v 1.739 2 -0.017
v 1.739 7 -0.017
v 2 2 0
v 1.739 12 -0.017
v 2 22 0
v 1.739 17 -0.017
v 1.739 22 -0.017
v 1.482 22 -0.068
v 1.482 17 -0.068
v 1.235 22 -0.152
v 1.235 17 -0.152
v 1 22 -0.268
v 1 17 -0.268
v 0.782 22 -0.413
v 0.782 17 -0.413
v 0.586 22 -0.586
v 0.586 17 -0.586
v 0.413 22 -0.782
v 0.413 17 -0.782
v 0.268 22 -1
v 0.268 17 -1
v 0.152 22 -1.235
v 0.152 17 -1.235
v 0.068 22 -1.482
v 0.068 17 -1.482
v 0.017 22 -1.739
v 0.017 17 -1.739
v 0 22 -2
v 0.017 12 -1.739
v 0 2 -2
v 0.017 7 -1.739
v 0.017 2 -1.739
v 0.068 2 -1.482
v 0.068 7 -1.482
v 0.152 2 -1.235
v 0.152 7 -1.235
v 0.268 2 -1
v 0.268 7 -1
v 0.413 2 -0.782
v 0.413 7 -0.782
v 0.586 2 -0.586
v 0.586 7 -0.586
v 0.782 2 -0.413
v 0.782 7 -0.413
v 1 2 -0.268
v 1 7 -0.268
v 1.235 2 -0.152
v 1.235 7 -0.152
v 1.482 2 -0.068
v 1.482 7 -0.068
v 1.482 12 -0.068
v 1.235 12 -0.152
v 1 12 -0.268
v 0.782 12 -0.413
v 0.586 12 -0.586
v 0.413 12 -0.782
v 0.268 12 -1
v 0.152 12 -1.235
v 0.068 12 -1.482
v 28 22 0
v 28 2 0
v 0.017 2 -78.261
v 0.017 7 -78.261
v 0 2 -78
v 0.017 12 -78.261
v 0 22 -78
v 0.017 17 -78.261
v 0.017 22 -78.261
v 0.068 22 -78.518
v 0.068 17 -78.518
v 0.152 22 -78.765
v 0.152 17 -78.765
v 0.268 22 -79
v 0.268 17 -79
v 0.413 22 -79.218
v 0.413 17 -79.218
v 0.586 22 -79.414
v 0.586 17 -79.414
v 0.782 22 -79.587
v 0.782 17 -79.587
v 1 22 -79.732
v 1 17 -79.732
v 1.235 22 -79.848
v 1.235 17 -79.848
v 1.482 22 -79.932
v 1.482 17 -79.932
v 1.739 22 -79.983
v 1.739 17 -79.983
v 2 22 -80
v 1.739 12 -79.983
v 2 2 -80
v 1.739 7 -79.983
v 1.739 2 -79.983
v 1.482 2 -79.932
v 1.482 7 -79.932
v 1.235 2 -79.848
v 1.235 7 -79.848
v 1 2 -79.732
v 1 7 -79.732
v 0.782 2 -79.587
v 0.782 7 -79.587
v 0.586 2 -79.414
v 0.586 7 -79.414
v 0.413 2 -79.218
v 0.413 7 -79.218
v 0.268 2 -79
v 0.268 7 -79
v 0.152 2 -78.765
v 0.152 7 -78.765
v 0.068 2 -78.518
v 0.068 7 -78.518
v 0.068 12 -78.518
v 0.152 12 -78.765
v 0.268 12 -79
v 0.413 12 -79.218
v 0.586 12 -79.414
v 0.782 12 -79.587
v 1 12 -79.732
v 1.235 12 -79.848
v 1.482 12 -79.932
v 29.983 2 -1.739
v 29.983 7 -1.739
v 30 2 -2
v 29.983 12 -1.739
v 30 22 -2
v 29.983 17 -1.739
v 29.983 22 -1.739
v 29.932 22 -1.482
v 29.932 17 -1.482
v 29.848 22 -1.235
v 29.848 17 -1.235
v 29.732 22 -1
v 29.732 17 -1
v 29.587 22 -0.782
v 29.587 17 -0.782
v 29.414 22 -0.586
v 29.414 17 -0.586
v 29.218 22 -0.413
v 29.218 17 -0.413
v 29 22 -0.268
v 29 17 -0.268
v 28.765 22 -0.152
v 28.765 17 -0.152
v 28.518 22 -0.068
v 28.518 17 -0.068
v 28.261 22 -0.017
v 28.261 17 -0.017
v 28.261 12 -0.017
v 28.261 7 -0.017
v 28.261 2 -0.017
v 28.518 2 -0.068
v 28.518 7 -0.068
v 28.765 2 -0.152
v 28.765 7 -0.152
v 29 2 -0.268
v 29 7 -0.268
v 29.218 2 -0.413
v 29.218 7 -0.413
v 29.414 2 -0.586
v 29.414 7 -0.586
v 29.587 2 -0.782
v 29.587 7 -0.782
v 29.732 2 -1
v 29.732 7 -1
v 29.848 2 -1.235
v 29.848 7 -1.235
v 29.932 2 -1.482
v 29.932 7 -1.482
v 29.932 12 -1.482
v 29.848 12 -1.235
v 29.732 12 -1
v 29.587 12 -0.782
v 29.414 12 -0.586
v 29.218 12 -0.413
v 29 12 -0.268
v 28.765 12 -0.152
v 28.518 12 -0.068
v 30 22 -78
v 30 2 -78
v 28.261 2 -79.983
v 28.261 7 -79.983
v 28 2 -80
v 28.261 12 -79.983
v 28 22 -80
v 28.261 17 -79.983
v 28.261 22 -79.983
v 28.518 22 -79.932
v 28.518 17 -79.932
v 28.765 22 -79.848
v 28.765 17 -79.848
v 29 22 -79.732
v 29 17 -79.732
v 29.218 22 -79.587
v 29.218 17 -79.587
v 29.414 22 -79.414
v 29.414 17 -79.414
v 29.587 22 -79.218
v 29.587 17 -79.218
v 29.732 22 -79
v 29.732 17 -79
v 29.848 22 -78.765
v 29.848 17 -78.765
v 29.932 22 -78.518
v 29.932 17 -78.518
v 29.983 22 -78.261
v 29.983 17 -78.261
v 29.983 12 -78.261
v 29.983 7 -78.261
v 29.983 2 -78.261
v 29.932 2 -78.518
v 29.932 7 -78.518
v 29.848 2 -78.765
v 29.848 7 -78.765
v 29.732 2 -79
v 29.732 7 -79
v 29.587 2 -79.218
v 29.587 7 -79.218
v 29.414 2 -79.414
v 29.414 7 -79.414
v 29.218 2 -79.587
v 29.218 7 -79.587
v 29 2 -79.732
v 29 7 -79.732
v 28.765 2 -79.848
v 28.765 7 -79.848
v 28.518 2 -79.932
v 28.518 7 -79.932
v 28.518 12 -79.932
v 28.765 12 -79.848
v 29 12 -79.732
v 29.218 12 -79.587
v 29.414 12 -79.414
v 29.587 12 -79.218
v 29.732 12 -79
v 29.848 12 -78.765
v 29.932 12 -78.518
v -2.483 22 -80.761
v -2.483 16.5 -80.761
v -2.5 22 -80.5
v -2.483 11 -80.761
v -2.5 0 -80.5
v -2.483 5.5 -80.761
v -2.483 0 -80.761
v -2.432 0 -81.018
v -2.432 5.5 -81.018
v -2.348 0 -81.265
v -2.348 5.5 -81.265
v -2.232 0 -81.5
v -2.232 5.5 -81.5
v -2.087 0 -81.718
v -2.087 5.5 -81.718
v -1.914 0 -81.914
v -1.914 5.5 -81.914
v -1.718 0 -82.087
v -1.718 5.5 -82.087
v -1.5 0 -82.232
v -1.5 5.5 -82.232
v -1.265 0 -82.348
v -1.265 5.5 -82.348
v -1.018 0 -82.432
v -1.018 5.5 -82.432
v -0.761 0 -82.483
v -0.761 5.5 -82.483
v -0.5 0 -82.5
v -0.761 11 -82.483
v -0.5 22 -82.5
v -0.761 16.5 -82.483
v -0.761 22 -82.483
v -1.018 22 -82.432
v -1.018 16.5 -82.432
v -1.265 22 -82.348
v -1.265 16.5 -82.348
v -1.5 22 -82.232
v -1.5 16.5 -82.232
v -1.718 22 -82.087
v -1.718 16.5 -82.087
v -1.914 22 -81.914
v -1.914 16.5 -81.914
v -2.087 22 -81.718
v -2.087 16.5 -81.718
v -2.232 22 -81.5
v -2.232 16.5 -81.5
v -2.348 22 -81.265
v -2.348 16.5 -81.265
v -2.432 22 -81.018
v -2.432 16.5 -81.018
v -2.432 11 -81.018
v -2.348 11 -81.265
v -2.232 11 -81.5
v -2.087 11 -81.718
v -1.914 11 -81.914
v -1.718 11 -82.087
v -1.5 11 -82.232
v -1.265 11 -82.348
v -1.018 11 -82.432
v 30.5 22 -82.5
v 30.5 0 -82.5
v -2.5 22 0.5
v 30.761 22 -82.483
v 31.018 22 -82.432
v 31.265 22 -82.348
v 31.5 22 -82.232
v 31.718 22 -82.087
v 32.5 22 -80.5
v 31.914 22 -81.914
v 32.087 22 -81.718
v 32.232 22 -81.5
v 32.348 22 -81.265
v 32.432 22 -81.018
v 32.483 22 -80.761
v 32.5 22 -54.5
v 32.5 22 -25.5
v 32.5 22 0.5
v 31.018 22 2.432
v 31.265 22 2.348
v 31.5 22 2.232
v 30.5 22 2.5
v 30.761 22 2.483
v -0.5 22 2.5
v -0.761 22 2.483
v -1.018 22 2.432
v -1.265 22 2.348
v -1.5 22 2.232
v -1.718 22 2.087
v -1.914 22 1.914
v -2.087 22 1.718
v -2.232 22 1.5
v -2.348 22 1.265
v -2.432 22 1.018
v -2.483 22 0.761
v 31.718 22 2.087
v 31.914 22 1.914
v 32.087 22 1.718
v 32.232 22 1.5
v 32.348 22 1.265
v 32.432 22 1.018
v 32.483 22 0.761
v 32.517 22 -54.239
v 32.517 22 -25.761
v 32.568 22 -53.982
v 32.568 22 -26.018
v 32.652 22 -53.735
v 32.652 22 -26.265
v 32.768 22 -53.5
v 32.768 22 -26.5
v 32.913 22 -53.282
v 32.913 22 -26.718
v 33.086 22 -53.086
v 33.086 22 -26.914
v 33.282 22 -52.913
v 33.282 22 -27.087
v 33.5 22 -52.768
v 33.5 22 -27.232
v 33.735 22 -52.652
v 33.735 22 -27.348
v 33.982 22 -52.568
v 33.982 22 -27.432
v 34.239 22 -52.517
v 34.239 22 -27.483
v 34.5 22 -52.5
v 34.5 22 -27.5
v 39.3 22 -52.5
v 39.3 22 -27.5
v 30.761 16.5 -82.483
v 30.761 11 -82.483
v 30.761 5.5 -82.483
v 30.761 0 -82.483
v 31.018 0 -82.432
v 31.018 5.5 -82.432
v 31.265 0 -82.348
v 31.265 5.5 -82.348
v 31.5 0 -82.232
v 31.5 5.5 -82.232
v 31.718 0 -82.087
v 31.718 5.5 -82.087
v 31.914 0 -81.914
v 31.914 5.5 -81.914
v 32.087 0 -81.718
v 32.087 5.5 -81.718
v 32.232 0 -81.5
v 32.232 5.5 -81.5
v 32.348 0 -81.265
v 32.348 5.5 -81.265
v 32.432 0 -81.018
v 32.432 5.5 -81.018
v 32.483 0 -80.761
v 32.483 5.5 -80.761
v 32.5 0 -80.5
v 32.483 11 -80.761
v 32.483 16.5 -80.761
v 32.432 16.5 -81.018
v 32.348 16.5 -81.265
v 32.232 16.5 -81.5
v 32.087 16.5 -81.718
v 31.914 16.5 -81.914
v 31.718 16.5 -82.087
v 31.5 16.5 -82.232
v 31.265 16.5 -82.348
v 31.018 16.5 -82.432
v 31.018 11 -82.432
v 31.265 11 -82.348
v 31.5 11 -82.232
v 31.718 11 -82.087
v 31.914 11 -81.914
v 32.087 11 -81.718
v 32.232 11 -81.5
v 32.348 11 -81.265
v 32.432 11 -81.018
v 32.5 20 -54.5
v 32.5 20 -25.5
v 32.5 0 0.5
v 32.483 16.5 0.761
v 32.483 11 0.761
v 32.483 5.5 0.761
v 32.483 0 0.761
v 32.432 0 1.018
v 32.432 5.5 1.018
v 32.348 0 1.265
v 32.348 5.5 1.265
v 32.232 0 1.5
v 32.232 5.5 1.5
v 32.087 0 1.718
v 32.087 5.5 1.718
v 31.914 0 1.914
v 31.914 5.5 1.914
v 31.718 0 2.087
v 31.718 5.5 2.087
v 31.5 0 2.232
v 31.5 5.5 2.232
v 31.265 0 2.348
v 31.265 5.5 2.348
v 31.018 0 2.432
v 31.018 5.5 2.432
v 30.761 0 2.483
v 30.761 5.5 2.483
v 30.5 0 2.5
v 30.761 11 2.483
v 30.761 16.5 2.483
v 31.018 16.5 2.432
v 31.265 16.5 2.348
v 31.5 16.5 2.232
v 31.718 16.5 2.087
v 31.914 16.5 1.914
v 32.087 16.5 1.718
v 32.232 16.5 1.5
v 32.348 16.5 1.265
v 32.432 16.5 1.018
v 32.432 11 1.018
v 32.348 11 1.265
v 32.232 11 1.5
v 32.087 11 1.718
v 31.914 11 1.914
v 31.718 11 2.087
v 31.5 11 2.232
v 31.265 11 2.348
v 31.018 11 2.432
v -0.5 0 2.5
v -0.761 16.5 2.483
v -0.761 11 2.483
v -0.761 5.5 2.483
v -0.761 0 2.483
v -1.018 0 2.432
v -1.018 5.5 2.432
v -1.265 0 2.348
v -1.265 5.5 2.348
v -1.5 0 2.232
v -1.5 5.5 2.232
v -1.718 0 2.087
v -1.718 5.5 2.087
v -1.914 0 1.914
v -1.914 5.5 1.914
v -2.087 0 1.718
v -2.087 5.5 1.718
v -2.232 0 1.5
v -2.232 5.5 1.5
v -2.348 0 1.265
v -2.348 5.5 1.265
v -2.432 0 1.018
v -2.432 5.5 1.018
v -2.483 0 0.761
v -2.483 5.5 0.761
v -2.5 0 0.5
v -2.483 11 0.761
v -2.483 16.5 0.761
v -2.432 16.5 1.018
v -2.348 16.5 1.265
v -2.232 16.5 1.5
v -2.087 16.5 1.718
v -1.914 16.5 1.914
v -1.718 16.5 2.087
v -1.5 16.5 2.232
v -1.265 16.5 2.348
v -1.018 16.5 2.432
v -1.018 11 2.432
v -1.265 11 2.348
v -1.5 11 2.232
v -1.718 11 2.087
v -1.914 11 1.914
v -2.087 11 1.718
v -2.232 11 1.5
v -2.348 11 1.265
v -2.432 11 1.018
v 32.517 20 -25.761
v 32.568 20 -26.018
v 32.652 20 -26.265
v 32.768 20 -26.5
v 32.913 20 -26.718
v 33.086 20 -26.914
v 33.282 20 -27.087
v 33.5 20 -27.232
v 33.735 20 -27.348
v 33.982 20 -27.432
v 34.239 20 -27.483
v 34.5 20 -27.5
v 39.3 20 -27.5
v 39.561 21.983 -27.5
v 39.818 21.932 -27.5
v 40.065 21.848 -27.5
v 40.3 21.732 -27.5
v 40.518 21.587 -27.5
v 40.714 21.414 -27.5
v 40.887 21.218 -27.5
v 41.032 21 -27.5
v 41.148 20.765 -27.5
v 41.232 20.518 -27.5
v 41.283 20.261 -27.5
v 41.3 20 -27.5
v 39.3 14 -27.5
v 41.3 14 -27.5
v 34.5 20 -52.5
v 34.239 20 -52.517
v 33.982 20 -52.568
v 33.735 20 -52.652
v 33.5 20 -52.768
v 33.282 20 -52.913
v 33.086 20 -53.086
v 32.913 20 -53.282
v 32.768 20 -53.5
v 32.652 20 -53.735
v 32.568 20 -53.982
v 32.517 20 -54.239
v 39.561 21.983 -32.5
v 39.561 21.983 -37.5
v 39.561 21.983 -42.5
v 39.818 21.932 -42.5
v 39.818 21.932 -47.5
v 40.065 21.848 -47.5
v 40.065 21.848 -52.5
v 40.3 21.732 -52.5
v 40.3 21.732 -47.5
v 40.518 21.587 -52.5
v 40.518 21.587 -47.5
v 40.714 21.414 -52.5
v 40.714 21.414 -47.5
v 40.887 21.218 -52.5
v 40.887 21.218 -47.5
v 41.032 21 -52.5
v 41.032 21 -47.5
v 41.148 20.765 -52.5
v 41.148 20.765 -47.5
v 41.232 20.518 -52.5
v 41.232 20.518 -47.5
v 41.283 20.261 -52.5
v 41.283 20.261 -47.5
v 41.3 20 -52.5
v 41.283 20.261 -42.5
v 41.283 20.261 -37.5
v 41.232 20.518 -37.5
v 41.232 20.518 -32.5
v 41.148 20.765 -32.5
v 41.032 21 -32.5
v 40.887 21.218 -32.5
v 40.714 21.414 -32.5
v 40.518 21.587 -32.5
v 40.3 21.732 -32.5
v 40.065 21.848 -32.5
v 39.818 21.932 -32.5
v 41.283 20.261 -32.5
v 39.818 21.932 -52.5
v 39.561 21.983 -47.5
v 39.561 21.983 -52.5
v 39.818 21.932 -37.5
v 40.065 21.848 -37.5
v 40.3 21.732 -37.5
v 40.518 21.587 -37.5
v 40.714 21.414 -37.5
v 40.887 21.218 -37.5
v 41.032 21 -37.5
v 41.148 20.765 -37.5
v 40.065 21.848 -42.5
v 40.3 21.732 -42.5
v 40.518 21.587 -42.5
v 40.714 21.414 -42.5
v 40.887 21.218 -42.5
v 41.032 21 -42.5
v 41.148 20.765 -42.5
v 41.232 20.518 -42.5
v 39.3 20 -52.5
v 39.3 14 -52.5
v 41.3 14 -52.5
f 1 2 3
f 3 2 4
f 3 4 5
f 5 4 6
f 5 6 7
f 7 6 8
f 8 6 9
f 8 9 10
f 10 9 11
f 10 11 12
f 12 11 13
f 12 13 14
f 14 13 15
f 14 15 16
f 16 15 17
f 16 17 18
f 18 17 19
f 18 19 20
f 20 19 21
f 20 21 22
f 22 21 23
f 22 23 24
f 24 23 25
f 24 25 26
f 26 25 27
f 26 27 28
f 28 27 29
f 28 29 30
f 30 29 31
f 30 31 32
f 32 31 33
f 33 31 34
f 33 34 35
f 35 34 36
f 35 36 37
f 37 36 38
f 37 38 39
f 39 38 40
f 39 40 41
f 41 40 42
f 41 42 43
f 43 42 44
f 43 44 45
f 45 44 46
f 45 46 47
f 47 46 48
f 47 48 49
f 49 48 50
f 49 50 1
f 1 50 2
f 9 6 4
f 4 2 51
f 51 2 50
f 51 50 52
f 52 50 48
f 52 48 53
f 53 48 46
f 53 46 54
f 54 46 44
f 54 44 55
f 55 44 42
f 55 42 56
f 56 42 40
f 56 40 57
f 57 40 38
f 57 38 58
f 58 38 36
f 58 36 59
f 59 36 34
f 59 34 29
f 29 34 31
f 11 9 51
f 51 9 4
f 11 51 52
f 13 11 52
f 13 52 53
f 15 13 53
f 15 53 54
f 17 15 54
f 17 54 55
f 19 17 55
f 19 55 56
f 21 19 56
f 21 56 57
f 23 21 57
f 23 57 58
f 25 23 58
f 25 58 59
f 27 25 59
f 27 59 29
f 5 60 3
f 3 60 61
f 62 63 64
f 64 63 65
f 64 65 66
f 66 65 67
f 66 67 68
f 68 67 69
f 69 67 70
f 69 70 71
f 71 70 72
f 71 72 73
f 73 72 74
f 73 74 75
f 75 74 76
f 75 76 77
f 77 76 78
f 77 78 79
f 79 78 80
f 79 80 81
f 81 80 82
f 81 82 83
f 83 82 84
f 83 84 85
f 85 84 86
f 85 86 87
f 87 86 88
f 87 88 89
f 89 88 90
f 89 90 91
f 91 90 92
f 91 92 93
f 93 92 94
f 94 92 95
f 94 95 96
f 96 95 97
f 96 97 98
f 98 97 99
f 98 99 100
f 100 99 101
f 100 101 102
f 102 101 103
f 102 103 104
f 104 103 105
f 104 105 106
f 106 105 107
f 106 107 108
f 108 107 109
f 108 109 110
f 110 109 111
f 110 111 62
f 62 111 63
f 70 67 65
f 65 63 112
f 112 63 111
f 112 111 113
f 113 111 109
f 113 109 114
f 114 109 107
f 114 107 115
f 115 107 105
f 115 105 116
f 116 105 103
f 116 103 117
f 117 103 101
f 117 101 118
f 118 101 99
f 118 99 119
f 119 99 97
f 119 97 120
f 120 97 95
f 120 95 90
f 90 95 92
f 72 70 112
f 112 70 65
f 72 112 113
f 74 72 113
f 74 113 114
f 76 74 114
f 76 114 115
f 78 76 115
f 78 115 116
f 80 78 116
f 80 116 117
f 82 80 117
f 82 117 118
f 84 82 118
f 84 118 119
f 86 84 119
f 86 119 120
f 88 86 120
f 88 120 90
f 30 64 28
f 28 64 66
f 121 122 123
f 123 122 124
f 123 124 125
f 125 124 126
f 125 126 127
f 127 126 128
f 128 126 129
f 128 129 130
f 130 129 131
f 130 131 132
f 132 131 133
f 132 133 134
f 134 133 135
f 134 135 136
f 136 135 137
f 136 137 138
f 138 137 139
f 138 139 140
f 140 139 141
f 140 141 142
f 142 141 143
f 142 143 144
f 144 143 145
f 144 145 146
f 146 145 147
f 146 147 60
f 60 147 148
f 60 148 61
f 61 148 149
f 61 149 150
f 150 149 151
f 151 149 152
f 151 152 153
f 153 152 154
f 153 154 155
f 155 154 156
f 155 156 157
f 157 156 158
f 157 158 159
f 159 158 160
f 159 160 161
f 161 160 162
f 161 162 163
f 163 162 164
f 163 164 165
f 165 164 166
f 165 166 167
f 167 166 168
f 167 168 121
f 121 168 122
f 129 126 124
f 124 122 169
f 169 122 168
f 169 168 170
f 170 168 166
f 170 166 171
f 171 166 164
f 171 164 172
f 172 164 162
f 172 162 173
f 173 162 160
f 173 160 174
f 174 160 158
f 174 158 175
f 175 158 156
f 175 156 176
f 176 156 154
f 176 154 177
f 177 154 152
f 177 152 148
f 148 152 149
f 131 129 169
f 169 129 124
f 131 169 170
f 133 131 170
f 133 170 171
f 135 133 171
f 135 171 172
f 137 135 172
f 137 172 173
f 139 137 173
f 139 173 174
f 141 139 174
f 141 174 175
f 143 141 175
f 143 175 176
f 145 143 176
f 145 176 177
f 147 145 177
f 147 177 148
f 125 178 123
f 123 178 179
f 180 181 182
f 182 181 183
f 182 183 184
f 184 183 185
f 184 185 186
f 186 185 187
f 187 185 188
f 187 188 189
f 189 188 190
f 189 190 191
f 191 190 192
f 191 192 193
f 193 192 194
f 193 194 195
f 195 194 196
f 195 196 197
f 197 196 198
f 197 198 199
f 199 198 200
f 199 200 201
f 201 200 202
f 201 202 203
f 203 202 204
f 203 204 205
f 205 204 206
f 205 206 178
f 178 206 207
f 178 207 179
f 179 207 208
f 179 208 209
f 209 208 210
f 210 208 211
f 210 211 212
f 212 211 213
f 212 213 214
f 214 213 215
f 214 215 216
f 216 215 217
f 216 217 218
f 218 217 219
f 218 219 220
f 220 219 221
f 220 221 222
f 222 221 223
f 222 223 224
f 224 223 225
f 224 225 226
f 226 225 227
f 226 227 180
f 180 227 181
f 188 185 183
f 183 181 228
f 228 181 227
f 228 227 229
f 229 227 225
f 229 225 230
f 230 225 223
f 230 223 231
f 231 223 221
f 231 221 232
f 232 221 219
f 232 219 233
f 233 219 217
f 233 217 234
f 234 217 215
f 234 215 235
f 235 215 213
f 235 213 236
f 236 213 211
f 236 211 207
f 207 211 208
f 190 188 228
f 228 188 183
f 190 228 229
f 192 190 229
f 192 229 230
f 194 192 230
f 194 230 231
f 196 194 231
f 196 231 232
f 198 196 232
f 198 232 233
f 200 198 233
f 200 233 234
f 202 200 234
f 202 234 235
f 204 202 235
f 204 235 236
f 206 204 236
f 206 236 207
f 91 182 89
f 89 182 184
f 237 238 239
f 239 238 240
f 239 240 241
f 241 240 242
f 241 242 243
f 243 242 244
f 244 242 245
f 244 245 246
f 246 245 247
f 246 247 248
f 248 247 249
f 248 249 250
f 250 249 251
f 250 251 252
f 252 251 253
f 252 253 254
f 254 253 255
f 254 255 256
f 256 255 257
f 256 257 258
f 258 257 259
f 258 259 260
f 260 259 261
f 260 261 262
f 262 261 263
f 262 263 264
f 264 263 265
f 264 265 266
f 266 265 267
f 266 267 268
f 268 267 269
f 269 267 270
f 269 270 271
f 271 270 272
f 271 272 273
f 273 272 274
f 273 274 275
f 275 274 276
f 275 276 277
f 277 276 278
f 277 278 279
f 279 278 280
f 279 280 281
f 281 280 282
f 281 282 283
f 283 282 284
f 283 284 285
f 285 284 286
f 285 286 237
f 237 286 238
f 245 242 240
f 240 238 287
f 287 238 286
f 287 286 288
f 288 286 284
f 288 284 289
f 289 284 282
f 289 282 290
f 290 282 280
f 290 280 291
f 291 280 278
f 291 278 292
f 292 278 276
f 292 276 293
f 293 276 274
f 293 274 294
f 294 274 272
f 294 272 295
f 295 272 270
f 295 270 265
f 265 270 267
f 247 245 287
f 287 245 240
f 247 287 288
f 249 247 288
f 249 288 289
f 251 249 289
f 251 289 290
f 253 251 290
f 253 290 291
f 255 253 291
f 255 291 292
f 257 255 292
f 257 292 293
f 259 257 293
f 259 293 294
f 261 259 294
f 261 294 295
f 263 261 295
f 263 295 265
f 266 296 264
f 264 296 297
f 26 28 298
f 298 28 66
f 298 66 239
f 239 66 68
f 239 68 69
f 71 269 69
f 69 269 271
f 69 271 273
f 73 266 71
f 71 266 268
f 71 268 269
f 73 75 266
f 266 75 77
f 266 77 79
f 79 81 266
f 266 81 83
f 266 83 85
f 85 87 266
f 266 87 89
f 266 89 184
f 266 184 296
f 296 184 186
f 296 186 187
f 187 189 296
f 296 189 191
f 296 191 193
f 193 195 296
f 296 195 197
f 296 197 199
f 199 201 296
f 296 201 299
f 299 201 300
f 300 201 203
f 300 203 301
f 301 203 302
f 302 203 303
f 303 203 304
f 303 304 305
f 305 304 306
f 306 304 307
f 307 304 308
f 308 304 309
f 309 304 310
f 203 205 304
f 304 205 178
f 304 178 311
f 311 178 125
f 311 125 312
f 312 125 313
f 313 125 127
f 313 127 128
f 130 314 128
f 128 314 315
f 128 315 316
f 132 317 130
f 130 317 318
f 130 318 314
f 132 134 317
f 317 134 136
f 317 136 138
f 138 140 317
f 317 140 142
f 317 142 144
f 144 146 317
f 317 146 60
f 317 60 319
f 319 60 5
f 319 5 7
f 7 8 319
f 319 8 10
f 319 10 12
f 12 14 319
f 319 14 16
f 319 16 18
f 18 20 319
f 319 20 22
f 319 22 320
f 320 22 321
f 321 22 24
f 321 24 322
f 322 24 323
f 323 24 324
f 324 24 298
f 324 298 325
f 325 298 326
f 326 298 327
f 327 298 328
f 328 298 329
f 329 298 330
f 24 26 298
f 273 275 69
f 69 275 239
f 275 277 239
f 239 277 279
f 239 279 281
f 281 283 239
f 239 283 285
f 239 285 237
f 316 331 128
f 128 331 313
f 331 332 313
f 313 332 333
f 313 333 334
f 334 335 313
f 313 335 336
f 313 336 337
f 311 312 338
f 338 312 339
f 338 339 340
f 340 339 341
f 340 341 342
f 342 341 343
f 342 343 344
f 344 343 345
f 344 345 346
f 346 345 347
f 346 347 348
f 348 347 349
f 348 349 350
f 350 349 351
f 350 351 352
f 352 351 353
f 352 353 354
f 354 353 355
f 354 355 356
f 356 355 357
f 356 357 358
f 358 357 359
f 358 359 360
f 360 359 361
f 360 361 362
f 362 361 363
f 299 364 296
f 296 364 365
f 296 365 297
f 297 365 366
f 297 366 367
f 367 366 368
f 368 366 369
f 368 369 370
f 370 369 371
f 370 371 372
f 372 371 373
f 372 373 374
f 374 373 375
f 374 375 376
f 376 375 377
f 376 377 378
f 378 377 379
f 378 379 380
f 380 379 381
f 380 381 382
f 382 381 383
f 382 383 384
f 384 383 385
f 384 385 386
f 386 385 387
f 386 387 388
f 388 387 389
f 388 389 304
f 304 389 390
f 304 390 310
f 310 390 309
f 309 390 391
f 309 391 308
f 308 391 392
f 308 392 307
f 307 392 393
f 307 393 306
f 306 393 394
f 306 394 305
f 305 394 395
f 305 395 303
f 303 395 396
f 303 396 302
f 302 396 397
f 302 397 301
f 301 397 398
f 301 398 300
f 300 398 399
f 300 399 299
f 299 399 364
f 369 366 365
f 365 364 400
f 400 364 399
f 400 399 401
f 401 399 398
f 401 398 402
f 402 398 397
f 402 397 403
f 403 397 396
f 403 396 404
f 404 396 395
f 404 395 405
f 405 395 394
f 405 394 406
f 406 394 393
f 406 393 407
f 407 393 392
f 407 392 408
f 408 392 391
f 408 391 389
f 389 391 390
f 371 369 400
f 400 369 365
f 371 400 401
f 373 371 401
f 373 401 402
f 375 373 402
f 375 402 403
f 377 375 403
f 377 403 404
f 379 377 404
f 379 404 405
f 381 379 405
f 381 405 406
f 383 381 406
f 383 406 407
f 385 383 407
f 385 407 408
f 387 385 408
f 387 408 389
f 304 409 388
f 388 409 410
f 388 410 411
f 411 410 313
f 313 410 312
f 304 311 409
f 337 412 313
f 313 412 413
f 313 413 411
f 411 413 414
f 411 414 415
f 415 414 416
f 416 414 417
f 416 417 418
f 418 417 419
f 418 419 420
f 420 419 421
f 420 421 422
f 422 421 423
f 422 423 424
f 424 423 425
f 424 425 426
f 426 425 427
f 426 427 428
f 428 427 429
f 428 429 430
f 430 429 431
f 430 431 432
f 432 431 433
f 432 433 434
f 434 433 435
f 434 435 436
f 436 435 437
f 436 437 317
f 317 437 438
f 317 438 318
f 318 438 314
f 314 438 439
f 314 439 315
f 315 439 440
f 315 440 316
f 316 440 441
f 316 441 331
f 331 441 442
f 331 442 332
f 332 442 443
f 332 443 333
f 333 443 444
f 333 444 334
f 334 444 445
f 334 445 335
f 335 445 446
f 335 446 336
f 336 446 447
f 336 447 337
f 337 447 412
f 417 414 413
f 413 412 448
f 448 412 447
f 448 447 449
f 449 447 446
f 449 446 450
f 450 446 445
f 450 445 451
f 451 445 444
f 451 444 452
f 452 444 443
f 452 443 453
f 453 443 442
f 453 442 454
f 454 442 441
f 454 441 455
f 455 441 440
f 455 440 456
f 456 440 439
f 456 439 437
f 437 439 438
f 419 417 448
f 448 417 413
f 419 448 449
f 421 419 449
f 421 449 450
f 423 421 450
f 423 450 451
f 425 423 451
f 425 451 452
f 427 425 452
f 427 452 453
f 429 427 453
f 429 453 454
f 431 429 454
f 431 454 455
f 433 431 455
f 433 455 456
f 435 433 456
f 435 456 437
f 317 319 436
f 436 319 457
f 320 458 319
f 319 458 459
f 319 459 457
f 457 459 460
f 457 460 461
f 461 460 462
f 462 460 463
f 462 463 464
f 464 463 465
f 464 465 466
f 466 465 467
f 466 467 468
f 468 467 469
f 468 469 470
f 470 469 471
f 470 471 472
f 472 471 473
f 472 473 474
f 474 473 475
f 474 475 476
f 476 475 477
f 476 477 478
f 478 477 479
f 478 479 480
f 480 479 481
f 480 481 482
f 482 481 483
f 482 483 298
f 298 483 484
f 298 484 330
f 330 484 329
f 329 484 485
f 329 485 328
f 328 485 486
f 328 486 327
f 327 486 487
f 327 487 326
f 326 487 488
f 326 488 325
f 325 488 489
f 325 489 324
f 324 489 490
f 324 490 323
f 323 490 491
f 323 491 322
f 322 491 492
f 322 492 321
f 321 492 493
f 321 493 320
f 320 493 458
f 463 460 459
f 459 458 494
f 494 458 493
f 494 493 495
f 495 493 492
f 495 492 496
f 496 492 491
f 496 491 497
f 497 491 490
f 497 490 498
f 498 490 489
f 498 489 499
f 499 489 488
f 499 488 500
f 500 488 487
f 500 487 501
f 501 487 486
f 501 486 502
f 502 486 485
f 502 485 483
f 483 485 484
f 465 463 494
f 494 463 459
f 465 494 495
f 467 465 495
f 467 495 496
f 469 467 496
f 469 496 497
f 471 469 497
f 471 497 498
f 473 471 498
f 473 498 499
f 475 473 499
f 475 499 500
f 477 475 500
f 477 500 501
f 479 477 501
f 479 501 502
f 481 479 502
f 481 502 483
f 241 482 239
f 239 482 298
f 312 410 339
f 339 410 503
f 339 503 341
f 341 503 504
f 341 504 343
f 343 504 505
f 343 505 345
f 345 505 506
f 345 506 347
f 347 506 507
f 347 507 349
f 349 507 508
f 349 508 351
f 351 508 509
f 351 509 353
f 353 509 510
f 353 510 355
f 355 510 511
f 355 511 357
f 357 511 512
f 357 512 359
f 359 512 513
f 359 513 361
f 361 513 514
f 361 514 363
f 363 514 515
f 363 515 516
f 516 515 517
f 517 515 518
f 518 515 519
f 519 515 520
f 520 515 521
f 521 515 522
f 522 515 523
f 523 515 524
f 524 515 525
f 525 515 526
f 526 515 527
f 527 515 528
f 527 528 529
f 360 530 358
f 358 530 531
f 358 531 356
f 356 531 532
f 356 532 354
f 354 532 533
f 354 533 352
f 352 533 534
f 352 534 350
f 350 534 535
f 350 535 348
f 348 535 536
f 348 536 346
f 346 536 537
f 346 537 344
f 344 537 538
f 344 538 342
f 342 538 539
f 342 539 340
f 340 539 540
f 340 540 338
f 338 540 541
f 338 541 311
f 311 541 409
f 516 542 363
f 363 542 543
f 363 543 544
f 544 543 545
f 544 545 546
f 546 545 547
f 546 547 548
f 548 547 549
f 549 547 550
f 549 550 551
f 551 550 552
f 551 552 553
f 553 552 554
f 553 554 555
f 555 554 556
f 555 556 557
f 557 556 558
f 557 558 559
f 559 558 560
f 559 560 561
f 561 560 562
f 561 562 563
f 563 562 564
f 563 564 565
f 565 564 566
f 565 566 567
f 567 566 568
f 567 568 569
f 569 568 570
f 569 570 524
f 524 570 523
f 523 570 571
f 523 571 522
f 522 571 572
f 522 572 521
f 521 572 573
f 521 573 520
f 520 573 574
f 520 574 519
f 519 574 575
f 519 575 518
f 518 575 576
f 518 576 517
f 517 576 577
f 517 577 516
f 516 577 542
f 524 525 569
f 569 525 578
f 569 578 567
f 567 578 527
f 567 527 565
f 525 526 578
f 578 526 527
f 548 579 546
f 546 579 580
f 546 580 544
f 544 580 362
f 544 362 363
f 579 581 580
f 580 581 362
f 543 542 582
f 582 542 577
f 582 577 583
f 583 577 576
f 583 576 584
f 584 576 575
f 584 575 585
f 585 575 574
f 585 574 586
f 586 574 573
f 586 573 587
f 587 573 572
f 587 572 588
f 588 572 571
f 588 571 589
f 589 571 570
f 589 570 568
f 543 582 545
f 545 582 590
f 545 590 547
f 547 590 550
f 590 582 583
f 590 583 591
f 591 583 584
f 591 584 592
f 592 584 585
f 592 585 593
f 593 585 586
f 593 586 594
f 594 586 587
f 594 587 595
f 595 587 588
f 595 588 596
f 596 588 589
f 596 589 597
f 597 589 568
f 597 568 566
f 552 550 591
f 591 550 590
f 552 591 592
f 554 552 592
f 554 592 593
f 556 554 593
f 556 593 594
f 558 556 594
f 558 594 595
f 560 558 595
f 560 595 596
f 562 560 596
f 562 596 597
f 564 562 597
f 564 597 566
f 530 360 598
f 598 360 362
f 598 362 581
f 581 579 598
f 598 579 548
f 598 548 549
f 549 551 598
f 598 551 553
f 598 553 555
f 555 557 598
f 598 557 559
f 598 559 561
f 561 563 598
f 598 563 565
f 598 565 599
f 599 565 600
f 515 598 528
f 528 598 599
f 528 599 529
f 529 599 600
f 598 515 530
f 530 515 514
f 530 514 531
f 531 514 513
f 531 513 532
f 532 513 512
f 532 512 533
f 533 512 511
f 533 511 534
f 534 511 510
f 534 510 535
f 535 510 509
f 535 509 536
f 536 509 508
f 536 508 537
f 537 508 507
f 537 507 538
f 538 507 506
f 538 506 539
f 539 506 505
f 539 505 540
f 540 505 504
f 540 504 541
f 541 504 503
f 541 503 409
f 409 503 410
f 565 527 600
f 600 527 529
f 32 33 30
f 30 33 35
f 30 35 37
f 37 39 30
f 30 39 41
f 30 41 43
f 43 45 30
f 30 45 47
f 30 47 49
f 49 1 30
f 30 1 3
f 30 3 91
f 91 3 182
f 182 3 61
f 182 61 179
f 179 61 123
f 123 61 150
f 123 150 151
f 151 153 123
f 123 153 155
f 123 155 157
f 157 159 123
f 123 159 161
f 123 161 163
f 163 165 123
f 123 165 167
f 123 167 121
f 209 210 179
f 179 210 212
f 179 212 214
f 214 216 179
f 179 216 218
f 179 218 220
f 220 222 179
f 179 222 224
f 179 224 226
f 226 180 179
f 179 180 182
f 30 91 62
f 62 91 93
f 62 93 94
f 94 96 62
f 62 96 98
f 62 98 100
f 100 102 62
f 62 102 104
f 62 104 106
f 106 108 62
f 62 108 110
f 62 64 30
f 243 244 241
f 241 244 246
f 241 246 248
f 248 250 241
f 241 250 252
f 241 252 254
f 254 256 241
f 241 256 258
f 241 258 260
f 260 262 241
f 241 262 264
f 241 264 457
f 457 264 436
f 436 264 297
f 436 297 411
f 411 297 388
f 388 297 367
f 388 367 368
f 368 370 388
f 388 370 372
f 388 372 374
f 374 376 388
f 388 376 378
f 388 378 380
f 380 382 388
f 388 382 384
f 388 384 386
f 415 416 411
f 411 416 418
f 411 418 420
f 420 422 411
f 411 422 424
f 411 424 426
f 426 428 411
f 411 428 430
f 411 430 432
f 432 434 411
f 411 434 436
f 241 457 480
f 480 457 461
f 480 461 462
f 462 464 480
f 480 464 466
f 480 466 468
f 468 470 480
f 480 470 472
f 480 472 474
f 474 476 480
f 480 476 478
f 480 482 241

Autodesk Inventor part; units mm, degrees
ref_plane "YZ Plane" through (0, 0, 0) normal (1, 0, 0) x (0, 1, 0)
ref_plane "XZ Plane" through (0, 0, 0) normal (0, 1, 0) x (-1, 0, 0)
ref_plane "XY Plane" through (0, 0, 0) normal (0, 0, 1) x (1, 0, 0)
sketch "Náčrt1" plane through (0, 0, 0) normal (0, 1, 0) x (-1, 0, 0)
  line L0 (0, 0) -> (-30, 0)
  line L1 (-30, 0) -> (-30, -80)
  line L2 (-30, -80) -> (0, -80)
  line L3 (0, -80) -> (0, 0)
  line L4 (2.5, 2.5) -> (-32.5, 2.5)
  line L5 (-32.5, 2.5) -> (-32.5, -82.5)
  line L6 (-32.5, -82.5) -> (2.5, -82.5)
  line L7 (2.5, -82.5) -> (2.5, 2.5)
  dimension "d0" = 80
  dimension "d1" = 30
  dimension "d2" = 2.5
extrude "Vysunutí1" add sketch "Náčrt1" along normal blind 2 contours L3 L2 L1 L0
extrude "Vysunutí2" add sketch "Náčrt1" along normal blind 22
sketch "Náčrt2" plane through (32.5, 0, 2.5) normal (1, 0, 0) x (0, 0, -1)
  line L0 (0, 22) -> (85, 22) projected
  line L1 (30, 22) -> (55, 22)
  line L2 (55, 22) -> (55, 20)
  line L3 (55, 20) -> (30, 20)
  line L4 (30, 20) -> (30, 22)
  line L5 (85, 0) -> (85, 22) projected
  line L6 (0, 0) -> (0, 22) projected
  point P0 (2.5, 0)
  dimension "d7" = 30
  dimension "d8" = 30
  dimension "d9" = 2
extrude "Vysunutí3" add sketch "Náčrt2" along normal blind 8.8
sketch "Náčrt3" plane through (32.5, 20, -52.5) normal (0, -1, 0) x (1, 0, 0)
  line L0 (0, 25) -> (8.8, 25) projected
  line L1 (0, 0) -> (8.8, 0) projected
  line L2 (8.8, 25) -> (6.8, 25)
  line L3 (6.8, 25) -> (6.8, 0)
  line L4 (6.8, 0) -> (8.8, 0)
  line L5 (8.8, 0) -> (8.8, 25)
  point P0 (-32.5, 52.5)
  point P1 (8.8, 0)
  point P2 (6.8, 25)
  dimension "d12" = 2
extrude "Vysunutí4" add sketch "Náčrt3" along normal blind 6
fillet "Zaoblení1" radius 2 3 edges at (41.3, 22, -40) (32.5, 21, -52.5) (32.5, 21, -27.5)
fillet "Zaoblení2" radius 2 4 edges at (-2.5, 11, 2.5) (32.5, 11, 2.5) (32.5, 11, -82.5) (-2.5, 11, -82.5)
fillet "Zaoblení3" radius 2 4 edges at (30, 12, -80) (30, 12, 0) (0, 12, -80) (0, 12, 0)
equation "\"d8\" = d7"
properties part number "AccesoryHolder"
